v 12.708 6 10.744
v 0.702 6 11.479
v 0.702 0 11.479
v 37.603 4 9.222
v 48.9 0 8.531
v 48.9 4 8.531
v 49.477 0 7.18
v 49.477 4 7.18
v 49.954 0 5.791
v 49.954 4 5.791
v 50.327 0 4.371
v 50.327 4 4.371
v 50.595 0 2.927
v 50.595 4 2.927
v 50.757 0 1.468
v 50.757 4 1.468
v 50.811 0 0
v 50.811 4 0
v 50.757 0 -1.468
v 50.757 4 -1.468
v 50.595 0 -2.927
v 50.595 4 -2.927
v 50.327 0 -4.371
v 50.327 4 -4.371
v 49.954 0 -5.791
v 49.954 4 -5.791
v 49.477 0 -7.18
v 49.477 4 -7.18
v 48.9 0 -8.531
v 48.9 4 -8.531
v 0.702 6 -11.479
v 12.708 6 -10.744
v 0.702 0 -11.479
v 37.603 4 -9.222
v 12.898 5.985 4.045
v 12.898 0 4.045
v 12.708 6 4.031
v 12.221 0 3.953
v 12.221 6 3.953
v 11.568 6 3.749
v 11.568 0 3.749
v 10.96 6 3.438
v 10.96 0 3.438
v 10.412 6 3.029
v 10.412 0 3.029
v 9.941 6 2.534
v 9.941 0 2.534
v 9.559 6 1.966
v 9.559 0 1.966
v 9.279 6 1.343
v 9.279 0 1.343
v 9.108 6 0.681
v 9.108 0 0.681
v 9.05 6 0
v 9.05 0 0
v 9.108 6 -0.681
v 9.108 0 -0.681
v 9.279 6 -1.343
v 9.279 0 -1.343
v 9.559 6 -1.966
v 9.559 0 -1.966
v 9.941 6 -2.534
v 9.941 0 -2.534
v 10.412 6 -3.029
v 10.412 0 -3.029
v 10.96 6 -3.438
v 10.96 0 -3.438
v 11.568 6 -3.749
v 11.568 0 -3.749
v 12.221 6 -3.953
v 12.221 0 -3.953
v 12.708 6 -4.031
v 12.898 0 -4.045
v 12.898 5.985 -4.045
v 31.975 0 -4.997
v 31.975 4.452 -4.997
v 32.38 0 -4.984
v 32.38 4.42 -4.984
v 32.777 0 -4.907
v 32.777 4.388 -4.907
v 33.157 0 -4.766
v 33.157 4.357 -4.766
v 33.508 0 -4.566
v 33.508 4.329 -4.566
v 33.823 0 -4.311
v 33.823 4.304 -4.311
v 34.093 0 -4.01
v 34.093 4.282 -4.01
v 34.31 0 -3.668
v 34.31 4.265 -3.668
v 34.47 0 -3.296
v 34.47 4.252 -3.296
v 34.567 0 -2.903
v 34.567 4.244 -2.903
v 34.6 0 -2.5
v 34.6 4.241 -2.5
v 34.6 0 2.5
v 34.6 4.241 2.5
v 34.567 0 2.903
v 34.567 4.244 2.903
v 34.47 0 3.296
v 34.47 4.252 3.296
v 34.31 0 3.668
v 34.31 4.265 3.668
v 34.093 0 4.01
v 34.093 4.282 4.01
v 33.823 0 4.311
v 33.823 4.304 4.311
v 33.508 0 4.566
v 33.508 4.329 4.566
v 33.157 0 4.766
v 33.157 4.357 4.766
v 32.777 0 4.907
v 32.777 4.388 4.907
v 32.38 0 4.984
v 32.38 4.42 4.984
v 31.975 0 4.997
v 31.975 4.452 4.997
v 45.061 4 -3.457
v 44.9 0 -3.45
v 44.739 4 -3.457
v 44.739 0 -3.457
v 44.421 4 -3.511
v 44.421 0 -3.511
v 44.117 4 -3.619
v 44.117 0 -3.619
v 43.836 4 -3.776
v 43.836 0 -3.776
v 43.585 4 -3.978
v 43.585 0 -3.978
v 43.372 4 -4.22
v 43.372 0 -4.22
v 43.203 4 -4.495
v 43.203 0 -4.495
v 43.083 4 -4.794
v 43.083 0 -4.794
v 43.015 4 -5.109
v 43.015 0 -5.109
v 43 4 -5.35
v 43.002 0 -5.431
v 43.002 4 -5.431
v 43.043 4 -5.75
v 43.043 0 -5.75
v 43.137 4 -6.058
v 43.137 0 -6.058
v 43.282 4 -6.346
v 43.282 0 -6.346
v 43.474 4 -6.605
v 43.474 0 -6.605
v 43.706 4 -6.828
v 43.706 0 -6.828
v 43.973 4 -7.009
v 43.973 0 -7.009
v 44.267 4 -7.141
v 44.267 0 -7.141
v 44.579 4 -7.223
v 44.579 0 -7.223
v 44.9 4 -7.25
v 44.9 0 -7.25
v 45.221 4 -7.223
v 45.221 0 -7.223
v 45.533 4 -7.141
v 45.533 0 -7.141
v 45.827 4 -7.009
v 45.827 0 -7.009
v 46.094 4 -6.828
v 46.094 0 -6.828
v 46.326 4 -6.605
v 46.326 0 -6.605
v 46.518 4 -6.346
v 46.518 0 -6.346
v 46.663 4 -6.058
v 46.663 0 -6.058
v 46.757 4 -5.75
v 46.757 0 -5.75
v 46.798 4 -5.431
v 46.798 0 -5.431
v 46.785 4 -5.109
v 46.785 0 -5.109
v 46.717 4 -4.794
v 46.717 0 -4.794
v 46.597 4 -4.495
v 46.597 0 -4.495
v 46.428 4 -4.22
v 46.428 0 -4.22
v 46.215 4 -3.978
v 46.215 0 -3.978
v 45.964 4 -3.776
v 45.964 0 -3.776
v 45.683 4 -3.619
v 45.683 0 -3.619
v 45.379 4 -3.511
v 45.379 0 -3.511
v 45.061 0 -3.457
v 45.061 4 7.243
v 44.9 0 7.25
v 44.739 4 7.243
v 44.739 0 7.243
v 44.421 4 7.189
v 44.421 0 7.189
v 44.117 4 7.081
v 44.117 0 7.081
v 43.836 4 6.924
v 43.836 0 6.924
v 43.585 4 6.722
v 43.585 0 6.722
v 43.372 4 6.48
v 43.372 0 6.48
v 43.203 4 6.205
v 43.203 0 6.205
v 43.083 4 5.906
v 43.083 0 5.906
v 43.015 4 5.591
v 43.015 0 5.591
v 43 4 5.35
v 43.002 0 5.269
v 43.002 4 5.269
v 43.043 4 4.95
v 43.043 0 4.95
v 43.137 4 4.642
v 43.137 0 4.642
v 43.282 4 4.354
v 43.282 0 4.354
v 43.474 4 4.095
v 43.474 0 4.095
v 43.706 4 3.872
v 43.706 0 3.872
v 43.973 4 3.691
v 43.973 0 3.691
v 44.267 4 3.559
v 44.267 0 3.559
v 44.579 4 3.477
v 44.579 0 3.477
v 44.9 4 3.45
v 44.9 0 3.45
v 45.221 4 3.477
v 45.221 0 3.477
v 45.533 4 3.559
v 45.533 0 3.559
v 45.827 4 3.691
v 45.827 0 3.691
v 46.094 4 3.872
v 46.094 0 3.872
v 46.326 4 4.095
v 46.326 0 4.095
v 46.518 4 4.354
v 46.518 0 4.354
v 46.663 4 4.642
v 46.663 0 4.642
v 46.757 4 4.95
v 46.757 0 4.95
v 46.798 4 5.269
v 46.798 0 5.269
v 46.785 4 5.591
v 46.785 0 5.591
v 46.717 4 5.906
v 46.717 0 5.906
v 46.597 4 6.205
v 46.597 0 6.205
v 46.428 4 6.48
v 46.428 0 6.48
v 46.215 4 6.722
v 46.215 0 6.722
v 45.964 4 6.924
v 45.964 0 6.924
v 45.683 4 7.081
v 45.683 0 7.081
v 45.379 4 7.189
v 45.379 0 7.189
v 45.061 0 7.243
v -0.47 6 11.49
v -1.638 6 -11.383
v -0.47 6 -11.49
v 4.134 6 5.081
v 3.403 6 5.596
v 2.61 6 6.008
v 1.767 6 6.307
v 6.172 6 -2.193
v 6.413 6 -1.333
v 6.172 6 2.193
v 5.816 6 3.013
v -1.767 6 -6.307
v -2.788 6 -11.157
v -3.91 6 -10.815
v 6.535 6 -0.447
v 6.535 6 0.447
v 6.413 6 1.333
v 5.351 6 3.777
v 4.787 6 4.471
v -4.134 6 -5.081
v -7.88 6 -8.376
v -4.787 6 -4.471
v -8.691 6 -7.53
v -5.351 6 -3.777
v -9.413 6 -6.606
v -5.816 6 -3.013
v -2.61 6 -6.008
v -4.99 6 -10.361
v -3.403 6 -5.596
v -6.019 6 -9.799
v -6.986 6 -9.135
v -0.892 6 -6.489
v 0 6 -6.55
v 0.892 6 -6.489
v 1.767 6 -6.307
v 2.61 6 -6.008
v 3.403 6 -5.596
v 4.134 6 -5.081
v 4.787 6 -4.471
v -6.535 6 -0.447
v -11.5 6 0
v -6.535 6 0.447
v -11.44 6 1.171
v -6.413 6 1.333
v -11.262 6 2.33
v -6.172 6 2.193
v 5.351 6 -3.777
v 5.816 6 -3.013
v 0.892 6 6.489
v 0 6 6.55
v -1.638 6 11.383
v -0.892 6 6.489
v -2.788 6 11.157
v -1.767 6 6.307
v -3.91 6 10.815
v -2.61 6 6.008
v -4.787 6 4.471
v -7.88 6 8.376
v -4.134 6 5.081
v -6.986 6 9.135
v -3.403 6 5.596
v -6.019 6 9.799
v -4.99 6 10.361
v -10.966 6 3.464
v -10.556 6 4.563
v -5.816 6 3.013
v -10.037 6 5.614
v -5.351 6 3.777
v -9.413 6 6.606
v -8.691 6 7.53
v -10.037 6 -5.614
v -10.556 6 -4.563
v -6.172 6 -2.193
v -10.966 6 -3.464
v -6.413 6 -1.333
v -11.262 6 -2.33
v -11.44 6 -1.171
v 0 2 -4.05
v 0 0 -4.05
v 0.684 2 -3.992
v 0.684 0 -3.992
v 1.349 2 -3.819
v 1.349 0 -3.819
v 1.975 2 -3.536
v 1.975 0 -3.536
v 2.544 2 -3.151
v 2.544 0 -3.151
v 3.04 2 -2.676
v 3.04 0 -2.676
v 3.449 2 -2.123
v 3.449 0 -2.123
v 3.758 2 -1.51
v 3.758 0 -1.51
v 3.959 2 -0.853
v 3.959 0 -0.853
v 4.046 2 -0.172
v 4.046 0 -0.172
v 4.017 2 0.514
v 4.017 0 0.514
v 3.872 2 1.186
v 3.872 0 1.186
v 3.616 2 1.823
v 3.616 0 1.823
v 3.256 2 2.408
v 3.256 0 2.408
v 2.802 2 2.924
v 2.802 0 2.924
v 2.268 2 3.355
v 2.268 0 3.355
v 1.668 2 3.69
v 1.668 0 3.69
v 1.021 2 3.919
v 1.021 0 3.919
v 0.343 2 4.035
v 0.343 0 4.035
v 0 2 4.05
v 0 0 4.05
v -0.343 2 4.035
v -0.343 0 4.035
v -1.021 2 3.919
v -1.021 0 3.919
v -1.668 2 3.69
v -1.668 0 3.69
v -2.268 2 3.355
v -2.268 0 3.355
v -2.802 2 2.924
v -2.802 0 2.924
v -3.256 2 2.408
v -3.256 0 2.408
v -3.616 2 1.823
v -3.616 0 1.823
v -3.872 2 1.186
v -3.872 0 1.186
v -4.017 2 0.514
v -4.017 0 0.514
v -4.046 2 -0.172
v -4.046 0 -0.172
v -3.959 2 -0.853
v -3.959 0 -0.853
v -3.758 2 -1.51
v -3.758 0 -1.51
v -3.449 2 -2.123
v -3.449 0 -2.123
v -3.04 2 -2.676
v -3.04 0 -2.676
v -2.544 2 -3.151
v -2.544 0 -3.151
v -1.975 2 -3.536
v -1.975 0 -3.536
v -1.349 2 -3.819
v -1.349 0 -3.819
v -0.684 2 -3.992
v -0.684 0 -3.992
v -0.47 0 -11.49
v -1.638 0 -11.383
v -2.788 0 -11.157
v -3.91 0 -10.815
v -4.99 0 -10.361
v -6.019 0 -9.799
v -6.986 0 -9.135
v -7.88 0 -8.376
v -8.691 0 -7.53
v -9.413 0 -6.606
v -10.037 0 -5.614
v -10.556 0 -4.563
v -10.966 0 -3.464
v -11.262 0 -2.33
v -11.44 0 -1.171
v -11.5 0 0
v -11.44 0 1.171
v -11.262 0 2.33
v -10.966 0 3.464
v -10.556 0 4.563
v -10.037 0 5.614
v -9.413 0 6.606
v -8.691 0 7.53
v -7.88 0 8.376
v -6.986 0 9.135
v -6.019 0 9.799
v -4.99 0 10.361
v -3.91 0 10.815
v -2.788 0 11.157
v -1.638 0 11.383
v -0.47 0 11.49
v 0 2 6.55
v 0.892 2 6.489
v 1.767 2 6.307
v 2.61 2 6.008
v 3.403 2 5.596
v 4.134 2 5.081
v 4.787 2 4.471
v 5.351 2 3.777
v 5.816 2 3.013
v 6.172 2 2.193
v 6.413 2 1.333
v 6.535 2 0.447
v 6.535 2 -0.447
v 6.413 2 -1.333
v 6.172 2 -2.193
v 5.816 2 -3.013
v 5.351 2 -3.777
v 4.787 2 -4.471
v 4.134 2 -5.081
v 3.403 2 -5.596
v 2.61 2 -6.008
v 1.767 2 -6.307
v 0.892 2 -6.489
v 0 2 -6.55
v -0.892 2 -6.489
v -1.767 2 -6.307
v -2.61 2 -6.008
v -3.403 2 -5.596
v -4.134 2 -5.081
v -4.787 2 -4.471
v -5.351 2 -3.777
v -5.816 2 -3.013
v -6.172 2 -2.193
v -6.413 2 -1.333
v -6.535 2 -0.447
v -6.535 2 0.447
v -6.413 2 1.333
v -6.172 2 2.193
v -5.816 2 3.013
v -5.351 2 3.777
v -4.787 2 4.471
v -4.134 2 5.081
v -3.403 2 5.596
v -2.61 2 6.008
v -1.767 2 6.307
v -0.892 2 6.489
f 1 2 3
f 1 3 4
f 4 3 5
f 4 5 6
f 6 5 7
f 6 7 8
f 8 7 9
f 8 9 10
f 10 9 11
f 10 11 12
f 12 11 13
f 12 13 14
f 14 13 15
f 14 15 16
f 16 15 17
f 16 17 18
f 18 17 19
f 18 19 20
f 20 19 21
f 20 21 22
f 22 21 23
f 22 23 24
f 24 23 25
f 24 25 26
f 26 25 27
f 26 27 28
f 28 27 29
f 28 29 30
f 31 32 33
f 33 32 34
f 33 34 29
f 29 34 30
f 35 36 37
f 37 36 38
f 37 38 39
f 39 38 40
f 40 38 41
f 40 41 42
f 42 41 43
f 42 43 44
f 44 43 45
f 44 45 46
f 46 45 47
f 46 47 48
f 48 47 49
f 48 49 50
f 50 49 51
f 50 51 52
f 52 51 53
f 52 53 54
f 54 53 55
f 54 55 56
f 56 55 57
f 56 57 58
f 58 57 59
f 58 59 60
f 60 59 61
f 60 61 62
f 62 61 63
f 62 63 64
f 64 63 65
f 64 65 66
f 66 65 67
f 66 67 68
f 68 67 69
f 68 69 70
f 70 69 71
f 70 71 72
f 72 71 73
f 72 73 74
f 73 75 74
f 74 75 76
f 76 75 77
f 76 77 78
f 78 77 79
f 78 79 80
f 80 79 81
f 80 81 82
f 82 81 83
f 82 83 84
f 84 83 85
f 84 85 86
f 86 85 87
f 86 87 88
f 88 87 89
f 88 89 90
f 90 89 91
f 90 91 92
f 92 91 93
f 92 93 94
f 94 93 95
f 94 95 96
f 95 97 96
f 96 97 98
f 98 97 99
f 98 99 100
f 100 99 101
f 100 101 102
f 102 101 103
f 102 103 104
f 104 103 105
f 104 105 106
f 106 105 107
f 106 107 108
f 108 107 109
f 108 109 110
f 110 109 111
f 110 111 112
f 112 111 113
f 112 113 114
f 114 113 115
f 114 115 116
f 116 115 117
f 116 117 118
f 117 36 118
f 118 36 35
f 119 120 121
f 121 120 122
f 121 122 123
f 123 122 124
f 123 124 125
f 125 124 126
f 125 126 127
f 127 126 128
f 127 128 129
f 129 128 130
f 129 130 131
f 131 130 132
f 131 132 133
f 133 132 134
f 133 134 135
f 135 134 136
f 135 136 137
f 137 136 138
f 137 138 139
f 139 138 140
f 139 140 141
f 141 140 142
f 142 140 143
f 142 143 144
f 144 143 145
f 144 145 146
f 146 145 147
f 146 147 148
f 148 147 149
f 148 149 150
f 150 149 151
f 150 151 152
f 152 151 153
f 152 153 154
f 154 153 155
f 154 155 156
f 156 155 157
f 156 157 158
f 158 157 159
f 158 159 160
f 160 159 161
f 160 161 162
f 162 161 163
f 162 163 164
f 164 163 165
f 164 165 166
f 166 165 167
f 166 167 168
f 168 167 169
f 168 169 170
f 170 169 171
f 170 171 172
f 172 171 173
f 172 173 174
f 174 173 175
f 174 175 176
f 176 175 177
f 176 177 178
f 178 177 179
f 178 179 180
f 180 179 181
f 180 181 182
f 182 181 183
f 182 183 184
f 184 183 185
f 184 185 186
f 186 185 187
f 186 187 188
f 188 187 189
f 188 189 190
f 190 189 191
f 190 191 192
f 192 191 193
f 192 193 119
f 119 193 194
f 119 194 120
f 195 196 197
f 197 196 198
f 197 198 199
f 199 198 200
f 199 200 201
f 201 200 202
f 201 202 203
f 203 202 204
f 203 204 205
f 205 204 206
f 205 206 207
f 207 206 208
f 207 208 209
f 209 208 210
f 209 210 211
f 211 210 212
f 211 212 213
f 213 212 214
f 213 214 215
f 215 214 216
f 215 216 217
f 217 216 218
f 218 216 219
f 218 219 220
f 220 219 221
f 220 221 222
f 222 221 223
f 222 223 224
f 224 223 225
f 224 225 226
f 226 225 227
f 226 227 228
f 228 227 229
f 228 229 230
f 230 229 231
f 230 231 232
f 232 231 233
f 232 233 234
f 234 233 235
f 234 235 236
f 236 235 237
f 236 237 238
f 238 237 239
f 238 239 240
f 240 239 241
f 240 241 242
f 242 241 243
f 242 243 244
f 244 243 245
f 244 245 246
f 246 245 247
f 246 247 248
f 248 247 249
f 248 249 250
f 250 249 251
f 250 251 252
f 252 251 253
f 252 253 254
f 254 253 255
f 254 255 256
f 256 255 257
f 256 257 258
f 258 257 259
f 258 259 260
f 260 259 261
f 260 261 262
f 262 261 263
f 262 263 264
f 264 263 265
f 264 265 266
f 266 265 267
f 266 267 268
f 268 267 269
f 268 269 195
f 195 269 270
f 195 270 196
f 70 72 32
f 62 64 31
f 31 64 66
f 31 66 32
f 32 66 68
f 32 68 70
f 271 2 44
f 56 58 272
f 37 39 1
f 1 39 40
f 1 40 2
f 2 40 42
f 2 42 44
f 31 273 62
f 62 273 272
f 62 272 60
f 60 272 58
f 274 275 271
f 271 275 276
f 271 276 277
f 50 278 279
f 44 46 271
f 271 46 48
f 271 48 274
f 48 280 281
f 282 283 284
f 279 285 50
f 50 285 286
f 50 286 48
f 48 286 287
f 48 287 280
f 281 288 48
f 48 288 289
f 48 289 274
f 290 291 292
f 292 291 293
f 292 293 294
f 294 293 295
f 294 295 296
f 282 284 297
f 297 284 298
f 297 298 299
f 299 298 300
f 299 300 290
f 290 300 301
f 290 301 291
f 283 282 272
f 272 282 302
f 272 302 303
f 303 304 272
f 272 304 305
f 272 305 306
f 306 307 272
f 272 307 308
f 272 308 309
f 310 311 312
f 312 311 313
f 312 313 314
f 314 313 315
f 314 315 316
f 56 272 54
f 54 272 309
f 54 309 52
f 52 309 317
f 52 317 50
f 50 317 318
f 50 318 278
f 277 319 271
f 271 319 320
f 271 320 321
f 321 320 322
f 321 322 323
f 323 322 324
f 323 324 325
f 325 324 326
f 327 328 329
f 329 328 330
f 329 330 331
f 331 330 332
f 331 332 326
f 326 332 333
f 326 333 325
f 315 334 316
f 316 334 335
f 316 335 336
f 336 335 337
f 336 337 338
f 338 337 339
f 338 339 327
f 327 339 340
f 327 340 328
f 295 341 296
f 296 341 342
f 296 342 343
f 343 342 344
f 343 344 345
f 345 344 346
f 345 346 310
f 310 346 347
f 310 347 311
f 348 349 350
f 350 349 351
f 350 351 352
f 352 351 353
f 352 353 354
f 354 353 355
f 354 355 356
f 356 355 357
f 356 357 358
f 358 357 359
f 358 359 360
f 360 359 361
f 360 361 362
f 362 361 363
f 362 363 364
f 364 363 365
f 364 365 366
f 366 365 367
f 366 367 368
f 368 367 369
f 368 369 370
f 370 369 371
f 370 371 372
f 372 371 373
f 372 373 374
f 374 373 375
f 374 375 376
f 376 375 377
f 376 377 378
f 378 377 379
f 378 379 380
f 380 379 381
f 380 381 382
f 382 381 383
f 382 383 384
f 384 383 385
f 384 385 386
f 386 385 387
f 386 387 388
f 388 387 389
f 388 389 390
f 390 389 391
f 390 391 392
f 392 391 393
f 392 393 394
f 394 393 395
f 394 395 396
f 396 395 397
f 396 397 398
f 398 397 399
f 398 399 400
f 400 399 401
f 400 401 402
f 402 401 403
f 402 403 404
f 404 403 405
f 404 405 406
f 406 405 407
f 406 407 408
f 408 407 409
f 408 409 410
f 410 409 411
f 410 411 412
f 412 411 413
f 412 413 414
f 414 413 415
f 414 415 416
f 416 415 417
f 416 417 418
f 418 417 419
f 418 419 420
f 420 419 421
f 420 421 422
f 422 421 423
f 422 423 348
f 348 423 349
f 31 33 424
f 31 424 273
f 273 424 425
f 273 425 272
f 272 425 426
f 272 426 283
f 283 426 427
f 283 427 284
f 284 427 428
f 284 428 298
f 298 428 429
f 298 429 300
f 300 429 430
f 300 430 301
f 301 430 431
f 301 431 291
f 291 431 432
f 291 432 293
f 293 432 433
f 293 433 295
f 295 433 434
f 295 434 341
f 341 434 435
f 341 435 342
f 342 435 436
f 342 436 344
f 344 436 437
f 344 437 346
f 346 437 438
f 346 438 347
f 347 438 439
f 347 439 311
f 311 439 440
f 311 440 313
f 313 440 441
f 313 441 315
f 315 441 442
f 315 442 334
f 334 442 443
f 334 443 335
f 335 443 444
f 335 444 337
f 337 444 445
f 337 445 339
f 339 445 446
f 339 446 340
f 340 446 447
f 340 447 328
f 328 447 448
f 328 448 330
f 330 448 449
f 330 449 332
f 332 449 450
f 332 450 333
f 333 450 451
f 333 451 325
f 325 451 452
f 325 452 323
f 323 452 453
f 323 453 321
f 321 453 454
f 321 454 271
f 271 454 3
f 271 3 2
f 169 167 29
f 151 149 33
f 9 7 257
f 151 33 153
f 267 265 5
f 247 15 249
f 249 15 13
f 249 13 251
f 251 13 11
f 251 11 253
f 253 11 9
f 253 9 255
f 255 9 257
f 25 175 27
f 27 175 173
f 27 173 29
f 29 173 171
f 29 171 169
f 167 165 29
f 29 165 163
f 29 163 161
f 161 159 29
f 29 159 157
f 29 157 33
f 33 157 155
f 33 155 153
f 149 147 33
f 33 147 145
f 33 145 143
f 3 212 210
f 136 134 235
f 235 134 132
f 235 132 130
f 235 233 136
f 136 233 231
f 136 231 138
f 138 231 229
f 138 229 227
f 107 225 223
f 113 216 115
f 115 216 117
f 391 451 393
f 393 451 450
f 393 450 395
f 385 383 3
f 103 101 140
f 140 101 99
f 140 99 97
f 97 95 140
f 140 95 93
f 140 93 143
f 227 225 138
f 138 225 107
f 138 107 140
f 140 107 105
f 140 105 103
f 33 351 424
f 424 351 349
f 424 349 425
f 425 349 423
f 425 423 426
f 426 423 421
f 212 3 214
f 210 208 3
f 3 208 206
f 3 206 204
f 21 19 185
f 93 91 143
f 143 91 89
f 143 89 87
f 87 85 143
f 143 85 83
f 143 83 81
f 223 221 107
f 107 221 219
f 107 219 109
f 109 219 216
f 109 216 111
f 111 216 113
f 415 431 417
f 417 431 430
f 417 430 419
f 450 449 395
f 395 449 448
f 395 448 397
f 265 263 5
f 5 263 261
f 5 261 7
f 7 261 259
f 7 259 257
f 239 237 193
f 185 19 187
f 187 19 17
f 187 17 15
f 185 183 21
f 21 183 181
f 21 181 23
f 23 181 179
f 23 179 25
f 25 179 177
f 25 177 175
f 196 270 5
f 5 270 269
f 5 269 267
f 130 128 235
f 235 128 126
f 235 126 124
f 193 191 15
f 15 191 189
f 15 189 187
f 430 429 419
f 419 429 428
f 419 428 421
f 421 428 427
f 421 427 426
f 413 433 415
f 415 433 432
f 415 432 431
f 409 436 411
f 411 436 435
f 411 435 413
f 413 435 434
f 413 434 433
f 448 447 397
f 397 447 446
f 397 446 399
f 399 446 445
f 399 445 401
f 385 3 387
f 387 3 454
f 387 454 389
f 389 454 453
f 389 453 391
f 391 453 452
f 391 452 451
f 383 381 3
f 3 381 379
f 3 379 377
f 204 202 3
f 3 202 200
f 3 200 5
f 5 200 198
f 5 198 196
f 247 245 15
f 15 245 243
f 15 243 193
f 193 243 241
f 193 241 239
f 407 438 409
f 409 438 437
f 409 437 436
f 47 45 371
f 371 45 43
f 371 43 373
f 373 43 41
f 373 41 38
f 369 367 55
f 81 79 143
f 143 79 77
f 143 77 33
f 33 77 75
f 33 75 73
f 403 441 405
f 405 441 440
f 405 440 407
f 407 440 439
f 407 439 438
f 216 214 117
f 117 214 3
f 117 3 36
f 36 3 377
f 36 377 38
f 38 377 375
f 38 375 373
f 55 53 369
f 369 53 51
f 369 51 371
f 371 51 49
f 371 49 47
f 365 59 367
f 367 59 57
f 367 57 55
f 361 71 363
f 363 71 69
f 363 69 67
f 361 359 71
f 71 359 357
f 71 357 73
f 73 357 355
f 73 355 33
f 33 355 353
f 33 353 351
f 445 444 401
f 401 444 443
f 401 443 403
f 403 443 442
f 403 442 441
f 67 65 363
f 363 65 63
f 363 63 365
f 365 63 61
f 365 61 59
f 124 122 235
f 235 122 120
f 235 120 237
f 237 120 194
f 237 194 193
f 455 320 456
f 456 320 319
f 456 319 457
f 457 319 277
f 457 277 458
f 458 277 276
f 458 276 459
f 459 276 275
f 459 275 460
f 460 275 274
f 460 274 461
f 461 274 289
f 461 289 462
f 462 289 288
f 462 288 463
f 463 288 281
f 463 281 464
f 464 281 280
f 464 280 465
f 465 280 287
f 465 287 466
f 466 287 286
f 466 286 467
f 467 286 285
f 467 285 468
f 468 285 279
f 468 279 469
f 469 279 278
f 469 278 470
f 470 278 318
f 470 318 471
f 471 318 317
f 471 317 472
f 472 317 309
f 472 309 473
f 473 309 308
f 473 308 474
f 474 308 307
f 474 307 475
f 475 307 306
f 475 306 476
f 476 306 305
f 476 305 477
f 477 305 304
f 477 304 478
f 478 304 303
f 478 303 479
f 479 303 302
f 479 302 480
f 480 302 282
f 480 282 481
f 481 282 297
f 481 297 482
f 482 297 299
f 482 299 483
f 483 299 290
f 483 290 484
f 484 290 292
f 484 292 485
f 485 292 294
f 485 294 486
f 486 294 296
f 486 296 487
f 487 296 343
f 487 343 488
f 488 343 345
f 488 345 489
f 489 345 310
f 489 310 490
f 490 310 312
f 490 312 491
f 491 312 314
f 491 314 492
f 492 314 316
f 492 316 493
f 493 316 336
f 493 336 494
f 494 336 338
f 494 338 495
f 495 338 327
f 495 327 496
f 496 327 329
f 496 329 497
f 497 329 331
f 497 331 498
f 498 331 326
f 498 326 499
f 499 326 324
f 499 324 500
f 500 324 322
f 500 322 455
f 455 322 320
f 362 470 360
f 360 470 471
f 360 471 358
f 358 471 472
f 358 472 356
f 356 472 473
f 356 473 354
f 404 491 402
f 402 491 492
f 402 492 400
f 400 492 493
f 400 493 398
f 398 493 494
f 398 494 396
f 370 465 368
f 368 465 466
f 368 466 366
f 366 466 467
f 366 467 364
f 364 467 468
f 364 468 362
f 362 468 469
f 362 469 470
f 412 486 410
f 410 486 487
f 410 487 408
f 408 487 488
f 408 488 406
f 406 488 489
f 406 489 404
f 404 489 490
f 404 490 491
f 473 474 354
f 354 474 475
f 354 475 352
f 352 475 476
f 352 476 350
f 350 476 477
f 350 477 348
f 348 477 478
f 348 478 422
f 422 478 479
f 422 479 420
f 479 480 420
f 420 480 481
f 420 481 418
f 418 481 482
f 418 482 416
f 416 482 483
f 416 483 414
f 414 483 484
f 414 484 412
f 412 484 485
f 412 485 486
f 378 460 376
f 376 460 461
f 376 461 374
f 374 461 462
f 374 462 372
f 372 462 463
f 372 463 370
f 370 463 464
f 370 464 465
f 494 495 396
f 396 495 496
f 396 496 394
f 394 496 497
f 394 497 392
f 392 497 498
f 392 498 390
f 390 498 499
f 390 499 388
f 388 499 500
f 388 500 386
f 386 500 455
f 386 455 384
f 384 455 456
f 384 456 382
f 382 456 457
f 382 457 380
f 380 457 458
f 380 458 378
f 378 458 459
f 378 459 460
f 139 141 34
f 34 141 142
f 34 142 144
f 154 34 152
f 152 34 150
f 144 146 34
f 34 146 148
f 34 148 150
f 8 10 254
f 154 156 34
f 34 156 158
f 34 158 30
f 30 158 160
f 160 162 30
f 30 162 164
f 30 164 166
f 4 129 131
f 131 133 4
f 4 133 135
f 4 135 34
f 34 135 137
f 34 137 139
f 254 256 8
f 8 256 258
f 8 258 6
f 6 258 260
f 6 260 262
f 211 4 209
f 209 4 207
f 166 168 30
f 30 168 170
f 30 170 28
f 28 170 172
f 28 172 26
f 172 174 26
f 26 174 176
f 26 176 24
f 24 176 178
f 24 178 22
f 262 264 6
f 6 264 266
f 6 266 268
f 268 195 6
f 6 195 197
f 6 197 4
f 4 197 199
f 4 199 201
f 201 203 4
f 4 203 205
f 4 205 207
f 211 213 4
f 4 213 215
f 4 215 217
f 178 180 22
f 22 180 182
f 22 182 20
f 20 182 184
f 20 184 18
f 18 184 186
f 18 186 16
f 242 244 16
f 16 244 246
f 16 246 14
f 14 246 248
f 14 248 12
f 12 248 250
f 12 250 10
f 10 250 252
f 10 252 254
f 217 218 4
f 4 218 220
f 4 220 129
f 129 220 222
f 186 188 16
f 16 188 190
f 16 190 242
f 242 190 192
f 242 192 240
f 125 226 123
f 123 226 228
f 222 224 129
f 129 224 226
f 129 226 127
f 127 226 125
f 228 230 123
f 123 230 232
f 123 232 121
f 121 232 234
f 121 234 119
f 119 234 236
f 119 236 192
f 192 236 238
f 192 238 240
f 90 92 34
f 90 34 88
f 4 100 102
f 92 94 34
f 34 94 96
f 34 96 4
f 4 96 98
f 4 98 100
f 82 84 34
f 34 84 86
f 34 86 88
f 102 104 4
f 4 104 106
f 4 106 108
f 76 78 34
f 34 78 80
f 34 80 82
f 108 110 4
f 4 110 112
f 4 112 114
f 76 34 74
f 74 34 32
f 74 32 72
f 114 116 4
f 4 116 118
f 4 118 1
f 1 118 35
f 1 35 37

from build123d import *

# Parameters (mm, degrees)
SKETCH1_R               = 1.9
SKETCH1_R_2             = 4.05
BOSS_EXTRUDE2_DEPTH     = 6
SKETCH2_R               = 6.55
CUT_EXTRUDE3_DEPTH      = 4
CUT_EXTRUDE2_DEPTH      = 21
CUT_EXTRUDE2_DEPTH_BACK = 16


with BuildPart() as part:
    # Sketch1 → Boss-Extrude2 (new body)
    with BuildSketch(Plane(origin=(0, 0, 0), x_dir=(1, 0, 0), z_dir=(0, 1, 0))):
        with BuildLine():
            Line((0.702058205, 11.478550182), (48.9, 8.530637776))
            ThreePointArc((48.9, 8.530637776), (50.810549507, 0), (48.9, -8.530637776))
            Line((48.9, -8.530637776), (0.702058205, -11.478550182))
            ThreePointArc((0.702058205, -11.478550182), (-11.5, 0), (0.702058205, 11.478550182))
        make_face()
        with Locations(Location((44.9, -5.35, 0), (0, 0, 270))):
            Circle(SKETCH1_R, mode=Mode.SUBTRACT)
        with Locations(Location((0, 0, 0), (0, 0, 270))):
            Circle(SKETCH1_R_2, mode=Mode.SUBTRACT)
        with Locations(Location((44.9, 5.35, 0), (0, 0, 270))):
            Circle(SKETCH1_R, mode=Mode.SUBTRACT)
        with BuildLine():
            Line((12.898162181, 4.044967428), (31.975408753, 4.996893474))
            ThreePointArc((31.975408753, 4.996893474), (33.823154358, 4.311281054), (34.6, 2.5))
            Line((34.6, 2.5), (34.6, -2.5))
            ThreePointArc((34.6, -2.5), (33.823154358, -4.311281054), (31.975408753, -4.996893474))
            Line((31.975408753, -4.996893474), (12.898162181, -4.044967428))
            ThreePointArc((12.898162181, -4.044967428), (9.05, 0), (12.898162181, 4.044967428))
        make_face(mode=Mode.SUBTRACT)
    extrude(amount=BOSS_EXTRUDE2_DEPTH)

    # Sketch2 → Cut-Extrude3 (cut)
    with BuildSketch(Plane(origin=(0, 6, 0), x_dir=(1, 0, 0), z_dir=(0, 1, 0))):
        with Locations(Location((0, 0, 0), (0, 0, 270))):
            Circle(SKETCH2_R)
    extrude(amount=-CUT_EXTRUDE3_DEPTH, mode=Mode.SUBTRACT)

    # Sketch3 → Cut-Extrude2 (cut, two sides: drawn at the far end of the back side and taken through both)
    with BuildSketch(Plane.XY.offset(-CUT_EXTRUDE2_DEPTH_BACK)):
        Polygon((50.810549507, 4), (37.603420494, 4), (12.707964704, 6), (50.810549507, 6), align=None)
    extrude(amount=CUT_EXTRUDE2_DEPTH + CUT_EXTRUDE2_DEPTH_BACK, mode=Mode.SUBTRACT)


solid = part.part
